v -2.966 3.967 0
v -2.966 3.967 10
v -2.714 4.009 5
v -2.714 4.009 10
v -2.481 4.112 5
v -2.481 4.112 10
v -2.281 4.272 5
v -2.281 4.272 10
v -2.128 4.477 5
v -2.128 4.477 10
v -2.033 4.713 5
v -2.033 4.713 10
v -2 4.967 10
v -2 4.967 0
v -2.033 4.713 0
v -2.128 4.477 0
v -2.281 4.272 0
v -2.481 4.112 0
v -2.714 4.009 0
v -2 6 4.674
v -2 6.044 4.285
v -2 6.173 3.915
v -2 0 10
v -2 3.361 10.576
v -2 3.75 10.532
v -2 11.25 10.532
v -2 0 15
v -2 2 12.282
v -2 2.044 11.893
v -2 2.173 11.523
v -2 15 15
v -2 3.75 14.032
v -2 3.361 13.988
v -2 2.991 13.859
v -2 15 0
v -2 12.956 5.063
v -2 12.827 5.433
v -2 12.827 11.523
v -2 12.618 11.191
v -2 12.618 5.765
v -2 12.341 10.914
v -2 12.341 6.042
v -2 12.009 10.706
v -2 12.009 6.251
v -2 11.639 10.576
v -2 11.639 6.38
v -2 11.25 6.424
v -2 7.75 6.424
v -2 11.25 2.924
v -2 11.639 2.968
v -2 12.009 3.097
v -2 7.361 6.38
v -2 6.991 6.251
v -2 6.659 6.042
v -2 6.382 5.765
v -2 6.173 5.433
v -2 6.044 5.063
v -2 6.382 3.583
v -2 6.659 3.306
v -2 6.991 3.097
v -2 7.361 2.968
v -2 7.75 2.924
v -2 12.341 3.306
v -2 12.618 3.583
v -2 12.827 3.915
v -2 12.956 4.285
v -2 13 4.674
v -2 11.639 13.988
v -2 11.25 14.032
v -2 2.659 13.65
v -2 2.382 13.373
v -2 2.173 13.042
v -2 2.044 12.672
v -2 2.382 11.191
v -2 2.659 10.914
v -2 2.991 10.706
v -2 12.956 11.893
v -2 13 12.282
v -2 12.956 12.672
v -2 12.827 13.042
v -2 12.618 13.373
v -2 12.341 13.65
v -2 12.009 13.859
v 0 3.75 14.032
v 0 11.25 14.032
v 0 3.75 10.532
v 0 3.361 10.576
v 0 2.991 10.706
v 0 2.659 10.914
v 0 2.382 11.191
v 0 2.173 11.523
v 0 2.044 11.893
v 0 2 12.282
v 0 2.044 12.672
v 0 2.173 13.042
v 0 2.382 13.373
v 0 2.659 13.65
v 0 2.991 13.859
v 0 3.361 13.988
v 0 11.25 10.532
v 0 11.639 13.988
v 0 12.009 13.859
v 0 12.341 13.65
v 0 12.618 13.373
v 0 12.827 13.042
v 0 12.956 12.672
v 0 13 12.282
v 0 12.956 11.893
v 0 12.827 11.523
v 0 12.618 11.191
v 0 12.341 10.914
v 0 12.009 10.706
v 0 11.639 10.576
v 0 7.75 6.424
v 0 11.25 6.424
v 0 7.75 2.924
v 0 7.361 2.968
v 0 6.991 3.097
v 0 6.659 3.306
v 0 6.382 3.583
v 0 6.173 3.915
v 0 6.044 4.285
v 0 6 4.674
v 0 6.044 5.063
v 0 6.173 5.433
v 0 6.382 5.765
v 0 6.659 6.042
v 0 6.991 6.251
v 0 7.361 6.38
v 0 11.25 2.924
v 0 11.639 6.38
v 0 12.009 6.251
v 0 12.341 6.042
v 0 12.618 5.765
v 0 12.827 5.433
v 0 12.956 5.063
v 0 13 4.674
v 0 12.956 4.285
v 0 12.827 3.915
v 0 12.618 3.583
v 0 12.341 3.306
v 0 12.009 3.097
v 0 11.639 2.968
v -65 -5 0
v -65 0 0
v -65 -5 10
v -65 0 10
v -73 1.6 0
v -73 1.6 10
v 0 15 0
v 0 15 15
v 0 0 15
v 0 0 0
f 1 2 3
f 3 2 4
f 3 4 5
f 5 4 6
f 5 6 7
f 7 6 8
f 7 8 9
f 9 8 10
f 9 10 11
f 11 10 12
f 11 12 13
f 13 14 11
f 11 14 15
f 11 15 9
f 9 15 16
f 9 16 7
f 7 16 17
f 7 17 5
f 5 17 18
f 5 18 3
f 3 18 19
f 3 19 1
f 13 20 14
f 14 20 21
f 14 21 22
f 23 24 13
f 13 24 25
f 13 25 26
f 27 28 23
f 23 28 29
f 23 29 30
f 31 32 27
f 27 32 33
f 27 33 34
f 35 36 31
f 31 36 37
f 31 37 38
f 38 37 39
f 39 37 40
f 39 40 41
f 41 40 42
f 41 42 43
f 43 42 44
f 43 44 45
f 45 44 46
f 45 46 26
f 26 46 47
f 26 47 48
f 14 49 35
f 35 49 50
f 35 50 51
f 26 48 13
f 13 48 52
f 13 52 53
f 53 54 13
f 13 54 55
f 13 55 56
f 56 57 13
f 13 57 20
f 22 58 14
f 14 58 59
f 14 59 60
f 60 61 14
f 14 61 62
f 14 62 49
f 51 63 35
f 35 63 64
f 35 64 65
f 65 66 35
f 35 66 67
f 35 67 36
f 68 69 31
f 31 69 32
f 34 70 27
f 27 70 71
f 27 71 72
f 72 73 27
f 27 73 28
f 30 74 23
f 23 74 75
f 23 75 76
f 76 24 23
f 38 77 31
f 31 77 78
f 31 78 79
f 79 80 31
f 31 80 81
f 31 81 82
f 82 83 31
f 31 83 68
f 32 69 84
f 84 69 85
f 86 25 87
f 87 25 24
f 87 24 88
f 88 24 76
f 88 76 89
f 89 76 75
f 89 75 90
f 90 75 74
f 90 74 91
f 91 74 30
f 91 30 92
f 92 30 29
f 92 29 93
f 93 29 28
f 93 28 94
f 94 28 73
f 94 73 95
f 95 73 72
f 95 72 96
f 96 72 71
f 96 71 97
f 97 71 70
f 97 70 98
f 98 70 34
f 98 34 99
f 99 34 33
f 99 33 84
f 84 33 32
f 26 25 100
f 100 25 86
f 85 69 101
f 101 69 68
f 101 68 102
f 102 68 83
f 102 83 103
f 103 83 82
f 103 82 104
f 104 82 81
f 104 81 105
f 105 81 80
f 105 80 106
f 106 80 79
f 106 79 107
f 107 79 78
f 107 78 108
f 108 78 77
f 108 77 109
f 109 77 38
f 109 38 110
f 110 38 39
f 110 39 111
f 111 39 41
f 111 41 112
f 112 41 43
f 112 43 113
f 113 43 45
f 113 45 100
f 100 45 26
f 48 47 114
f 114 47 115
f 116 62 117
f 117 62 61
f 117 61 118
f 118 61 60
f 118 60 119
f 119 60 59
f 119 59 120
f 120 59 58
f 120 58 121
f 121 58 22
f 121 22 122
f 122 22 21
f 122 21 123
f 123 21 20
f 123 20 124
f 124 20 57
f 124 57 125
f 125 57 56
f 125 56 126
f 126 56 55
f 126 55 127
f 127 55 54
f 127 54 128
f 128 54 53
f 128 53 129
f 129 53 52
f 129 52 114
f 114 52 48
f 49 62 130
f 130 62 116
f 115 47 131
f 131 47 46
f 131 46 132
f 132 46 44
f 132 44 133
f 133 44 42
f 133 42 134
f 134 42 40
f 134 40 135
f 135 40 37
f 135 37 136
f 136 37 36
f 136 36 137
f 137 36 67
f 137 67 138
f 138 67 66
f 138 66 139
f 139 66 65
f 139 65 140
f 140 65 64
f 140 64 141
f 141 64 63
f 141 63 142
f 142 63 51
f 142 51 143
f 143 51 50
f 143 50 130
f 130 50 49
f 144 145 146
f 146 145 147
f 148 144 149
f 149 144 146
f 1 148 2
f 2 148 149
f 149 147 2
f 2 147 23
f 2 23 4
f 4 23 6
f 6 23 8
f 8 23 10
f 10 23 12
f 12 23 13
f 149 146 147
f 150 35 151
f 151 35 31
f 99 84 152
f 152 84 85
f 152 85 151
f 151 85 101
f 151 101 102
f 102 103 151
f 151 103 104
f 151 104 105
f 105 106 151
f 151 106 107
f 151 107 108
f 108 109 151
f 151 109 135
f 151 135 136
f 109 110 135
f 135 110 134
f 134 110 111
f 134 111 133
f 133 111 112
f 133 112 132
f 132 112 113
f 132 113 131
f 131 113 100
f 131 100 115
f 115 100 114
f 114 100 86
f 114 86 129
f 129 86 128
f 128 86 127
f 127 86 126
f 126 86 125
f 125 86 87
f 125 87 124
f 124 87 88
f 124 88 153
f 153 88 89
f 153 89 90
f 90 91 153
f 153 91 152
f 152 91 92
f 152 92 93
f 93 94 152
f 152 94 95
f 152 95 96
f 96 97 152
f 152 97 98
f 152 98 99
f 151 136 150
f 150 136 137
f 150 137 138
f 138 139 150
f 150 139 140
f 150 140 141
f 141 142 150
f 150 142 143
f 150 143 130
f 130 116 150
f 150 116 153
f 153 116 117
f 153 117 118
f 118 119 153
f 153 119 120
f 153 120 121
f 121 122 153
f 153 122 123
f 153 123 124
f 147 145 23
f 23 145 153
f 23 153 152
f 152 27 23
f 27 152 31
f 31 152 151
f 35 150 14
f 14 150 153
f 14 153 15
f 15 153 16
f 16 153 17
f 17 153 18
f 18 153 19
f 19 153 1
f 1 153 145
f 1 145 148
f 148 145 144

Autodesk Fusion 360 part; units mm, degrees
sketch "Sketch1" plane through (0, 0, 0) normal (0, 0, 1) x (1, 0, 0)
  line L0 (0, 0) -> (-65, 0)
  line L1 (-65, 0) -> (-65, -5)
  line L2 (-65, -5) -> (-73, 1.6)
  line L3 (-73, 1.6) -> (-2, 4)
  line L4 (-2, 4) -> (-2, 15)
  line L5 (-2, 15) -> (0, 15)
  line L6 (0, 15) -> (0, 0)
  line L7 (-2, 4) -> (-2, 0)
  dimension "d1" = 65
  dimension "d2" = 15
  dimension "d3" = 2
  dimension "d4" = 5
  dimension "d5" = 8
  dimension "d6" = 1.6
  dimension "d7" = 4
extrude "Extrude1" add sketch "Sketch1" along normal blind 15 contours L0 L4 L5 L6 L7
extrude "Extrude2" add sketch "Sketch1" along normal blind 10 contours L0 L1 L2 L3 L7
sketch "Sketch2" plane through (0, 0, 0) normal (1, 0, 0) x (0, 1, 0)
  line L0 (0, 0) -> (15, 0)
  line L1 (15, 0) -> (15, 15)
  line L2 (15, 15) -> (0, 15)
  line L3 (0, 15) -> (0, 0)
  line L4 (4, 10) -> (0, 10) construction
  line L5 (4, 0) -> (4, 10) construction
  line L6 (3.75, 10.5322) -> (11.25, 10.5322)
  arc A0 (11.25, 10.5322) -> (11.25, 14.0322) centre (11.25, 12.2822) ccw
  line L7 (11.25, 14.0322) -> (3.75, 14.0322)
  arc A1 (3.75, 14.0322) -> (3.75, 10.5322) centre (3.75, 12.2822) ccw
  line L8 (3.75, 12.2822) -> (11.25, 12.2822) construction
  line L9 (7.5, 15) -> (7.5, 0) construction
  line L10 (7.75, 2.9241) -> (11.25, 2.9241)
  arc A2 (11.25, 2.9241) -> (11.25, 6.4241) centre (11.25, 4.6741) ccw
  line L11 (11.25, 6.4241) -> (7.75, 6.4241)
  arc A3 (7.75, 6.4241) -> (7.75, 2.9241) centre (7.75, 4.6741) ccw
  line L12 (6, 4.6741) -> (13, 4.6741) construction
  dimension "d12" = 3.5
  dimension "d13" = 3.5
  dimension "d14" = 2
  dimension "d15" = 2
  dimension "d16" = 2
  dimension "d17" = 2
extrude "Extrude3" cut sketch "Sketch2" against normal up to surface (2 mm away) contours L6 A0 L7 A1 | L10 A2 L11 A3
fillet "Fillet1" radius 1 1 edges at (-2, 4, 5)
equation "d13 = d12"
